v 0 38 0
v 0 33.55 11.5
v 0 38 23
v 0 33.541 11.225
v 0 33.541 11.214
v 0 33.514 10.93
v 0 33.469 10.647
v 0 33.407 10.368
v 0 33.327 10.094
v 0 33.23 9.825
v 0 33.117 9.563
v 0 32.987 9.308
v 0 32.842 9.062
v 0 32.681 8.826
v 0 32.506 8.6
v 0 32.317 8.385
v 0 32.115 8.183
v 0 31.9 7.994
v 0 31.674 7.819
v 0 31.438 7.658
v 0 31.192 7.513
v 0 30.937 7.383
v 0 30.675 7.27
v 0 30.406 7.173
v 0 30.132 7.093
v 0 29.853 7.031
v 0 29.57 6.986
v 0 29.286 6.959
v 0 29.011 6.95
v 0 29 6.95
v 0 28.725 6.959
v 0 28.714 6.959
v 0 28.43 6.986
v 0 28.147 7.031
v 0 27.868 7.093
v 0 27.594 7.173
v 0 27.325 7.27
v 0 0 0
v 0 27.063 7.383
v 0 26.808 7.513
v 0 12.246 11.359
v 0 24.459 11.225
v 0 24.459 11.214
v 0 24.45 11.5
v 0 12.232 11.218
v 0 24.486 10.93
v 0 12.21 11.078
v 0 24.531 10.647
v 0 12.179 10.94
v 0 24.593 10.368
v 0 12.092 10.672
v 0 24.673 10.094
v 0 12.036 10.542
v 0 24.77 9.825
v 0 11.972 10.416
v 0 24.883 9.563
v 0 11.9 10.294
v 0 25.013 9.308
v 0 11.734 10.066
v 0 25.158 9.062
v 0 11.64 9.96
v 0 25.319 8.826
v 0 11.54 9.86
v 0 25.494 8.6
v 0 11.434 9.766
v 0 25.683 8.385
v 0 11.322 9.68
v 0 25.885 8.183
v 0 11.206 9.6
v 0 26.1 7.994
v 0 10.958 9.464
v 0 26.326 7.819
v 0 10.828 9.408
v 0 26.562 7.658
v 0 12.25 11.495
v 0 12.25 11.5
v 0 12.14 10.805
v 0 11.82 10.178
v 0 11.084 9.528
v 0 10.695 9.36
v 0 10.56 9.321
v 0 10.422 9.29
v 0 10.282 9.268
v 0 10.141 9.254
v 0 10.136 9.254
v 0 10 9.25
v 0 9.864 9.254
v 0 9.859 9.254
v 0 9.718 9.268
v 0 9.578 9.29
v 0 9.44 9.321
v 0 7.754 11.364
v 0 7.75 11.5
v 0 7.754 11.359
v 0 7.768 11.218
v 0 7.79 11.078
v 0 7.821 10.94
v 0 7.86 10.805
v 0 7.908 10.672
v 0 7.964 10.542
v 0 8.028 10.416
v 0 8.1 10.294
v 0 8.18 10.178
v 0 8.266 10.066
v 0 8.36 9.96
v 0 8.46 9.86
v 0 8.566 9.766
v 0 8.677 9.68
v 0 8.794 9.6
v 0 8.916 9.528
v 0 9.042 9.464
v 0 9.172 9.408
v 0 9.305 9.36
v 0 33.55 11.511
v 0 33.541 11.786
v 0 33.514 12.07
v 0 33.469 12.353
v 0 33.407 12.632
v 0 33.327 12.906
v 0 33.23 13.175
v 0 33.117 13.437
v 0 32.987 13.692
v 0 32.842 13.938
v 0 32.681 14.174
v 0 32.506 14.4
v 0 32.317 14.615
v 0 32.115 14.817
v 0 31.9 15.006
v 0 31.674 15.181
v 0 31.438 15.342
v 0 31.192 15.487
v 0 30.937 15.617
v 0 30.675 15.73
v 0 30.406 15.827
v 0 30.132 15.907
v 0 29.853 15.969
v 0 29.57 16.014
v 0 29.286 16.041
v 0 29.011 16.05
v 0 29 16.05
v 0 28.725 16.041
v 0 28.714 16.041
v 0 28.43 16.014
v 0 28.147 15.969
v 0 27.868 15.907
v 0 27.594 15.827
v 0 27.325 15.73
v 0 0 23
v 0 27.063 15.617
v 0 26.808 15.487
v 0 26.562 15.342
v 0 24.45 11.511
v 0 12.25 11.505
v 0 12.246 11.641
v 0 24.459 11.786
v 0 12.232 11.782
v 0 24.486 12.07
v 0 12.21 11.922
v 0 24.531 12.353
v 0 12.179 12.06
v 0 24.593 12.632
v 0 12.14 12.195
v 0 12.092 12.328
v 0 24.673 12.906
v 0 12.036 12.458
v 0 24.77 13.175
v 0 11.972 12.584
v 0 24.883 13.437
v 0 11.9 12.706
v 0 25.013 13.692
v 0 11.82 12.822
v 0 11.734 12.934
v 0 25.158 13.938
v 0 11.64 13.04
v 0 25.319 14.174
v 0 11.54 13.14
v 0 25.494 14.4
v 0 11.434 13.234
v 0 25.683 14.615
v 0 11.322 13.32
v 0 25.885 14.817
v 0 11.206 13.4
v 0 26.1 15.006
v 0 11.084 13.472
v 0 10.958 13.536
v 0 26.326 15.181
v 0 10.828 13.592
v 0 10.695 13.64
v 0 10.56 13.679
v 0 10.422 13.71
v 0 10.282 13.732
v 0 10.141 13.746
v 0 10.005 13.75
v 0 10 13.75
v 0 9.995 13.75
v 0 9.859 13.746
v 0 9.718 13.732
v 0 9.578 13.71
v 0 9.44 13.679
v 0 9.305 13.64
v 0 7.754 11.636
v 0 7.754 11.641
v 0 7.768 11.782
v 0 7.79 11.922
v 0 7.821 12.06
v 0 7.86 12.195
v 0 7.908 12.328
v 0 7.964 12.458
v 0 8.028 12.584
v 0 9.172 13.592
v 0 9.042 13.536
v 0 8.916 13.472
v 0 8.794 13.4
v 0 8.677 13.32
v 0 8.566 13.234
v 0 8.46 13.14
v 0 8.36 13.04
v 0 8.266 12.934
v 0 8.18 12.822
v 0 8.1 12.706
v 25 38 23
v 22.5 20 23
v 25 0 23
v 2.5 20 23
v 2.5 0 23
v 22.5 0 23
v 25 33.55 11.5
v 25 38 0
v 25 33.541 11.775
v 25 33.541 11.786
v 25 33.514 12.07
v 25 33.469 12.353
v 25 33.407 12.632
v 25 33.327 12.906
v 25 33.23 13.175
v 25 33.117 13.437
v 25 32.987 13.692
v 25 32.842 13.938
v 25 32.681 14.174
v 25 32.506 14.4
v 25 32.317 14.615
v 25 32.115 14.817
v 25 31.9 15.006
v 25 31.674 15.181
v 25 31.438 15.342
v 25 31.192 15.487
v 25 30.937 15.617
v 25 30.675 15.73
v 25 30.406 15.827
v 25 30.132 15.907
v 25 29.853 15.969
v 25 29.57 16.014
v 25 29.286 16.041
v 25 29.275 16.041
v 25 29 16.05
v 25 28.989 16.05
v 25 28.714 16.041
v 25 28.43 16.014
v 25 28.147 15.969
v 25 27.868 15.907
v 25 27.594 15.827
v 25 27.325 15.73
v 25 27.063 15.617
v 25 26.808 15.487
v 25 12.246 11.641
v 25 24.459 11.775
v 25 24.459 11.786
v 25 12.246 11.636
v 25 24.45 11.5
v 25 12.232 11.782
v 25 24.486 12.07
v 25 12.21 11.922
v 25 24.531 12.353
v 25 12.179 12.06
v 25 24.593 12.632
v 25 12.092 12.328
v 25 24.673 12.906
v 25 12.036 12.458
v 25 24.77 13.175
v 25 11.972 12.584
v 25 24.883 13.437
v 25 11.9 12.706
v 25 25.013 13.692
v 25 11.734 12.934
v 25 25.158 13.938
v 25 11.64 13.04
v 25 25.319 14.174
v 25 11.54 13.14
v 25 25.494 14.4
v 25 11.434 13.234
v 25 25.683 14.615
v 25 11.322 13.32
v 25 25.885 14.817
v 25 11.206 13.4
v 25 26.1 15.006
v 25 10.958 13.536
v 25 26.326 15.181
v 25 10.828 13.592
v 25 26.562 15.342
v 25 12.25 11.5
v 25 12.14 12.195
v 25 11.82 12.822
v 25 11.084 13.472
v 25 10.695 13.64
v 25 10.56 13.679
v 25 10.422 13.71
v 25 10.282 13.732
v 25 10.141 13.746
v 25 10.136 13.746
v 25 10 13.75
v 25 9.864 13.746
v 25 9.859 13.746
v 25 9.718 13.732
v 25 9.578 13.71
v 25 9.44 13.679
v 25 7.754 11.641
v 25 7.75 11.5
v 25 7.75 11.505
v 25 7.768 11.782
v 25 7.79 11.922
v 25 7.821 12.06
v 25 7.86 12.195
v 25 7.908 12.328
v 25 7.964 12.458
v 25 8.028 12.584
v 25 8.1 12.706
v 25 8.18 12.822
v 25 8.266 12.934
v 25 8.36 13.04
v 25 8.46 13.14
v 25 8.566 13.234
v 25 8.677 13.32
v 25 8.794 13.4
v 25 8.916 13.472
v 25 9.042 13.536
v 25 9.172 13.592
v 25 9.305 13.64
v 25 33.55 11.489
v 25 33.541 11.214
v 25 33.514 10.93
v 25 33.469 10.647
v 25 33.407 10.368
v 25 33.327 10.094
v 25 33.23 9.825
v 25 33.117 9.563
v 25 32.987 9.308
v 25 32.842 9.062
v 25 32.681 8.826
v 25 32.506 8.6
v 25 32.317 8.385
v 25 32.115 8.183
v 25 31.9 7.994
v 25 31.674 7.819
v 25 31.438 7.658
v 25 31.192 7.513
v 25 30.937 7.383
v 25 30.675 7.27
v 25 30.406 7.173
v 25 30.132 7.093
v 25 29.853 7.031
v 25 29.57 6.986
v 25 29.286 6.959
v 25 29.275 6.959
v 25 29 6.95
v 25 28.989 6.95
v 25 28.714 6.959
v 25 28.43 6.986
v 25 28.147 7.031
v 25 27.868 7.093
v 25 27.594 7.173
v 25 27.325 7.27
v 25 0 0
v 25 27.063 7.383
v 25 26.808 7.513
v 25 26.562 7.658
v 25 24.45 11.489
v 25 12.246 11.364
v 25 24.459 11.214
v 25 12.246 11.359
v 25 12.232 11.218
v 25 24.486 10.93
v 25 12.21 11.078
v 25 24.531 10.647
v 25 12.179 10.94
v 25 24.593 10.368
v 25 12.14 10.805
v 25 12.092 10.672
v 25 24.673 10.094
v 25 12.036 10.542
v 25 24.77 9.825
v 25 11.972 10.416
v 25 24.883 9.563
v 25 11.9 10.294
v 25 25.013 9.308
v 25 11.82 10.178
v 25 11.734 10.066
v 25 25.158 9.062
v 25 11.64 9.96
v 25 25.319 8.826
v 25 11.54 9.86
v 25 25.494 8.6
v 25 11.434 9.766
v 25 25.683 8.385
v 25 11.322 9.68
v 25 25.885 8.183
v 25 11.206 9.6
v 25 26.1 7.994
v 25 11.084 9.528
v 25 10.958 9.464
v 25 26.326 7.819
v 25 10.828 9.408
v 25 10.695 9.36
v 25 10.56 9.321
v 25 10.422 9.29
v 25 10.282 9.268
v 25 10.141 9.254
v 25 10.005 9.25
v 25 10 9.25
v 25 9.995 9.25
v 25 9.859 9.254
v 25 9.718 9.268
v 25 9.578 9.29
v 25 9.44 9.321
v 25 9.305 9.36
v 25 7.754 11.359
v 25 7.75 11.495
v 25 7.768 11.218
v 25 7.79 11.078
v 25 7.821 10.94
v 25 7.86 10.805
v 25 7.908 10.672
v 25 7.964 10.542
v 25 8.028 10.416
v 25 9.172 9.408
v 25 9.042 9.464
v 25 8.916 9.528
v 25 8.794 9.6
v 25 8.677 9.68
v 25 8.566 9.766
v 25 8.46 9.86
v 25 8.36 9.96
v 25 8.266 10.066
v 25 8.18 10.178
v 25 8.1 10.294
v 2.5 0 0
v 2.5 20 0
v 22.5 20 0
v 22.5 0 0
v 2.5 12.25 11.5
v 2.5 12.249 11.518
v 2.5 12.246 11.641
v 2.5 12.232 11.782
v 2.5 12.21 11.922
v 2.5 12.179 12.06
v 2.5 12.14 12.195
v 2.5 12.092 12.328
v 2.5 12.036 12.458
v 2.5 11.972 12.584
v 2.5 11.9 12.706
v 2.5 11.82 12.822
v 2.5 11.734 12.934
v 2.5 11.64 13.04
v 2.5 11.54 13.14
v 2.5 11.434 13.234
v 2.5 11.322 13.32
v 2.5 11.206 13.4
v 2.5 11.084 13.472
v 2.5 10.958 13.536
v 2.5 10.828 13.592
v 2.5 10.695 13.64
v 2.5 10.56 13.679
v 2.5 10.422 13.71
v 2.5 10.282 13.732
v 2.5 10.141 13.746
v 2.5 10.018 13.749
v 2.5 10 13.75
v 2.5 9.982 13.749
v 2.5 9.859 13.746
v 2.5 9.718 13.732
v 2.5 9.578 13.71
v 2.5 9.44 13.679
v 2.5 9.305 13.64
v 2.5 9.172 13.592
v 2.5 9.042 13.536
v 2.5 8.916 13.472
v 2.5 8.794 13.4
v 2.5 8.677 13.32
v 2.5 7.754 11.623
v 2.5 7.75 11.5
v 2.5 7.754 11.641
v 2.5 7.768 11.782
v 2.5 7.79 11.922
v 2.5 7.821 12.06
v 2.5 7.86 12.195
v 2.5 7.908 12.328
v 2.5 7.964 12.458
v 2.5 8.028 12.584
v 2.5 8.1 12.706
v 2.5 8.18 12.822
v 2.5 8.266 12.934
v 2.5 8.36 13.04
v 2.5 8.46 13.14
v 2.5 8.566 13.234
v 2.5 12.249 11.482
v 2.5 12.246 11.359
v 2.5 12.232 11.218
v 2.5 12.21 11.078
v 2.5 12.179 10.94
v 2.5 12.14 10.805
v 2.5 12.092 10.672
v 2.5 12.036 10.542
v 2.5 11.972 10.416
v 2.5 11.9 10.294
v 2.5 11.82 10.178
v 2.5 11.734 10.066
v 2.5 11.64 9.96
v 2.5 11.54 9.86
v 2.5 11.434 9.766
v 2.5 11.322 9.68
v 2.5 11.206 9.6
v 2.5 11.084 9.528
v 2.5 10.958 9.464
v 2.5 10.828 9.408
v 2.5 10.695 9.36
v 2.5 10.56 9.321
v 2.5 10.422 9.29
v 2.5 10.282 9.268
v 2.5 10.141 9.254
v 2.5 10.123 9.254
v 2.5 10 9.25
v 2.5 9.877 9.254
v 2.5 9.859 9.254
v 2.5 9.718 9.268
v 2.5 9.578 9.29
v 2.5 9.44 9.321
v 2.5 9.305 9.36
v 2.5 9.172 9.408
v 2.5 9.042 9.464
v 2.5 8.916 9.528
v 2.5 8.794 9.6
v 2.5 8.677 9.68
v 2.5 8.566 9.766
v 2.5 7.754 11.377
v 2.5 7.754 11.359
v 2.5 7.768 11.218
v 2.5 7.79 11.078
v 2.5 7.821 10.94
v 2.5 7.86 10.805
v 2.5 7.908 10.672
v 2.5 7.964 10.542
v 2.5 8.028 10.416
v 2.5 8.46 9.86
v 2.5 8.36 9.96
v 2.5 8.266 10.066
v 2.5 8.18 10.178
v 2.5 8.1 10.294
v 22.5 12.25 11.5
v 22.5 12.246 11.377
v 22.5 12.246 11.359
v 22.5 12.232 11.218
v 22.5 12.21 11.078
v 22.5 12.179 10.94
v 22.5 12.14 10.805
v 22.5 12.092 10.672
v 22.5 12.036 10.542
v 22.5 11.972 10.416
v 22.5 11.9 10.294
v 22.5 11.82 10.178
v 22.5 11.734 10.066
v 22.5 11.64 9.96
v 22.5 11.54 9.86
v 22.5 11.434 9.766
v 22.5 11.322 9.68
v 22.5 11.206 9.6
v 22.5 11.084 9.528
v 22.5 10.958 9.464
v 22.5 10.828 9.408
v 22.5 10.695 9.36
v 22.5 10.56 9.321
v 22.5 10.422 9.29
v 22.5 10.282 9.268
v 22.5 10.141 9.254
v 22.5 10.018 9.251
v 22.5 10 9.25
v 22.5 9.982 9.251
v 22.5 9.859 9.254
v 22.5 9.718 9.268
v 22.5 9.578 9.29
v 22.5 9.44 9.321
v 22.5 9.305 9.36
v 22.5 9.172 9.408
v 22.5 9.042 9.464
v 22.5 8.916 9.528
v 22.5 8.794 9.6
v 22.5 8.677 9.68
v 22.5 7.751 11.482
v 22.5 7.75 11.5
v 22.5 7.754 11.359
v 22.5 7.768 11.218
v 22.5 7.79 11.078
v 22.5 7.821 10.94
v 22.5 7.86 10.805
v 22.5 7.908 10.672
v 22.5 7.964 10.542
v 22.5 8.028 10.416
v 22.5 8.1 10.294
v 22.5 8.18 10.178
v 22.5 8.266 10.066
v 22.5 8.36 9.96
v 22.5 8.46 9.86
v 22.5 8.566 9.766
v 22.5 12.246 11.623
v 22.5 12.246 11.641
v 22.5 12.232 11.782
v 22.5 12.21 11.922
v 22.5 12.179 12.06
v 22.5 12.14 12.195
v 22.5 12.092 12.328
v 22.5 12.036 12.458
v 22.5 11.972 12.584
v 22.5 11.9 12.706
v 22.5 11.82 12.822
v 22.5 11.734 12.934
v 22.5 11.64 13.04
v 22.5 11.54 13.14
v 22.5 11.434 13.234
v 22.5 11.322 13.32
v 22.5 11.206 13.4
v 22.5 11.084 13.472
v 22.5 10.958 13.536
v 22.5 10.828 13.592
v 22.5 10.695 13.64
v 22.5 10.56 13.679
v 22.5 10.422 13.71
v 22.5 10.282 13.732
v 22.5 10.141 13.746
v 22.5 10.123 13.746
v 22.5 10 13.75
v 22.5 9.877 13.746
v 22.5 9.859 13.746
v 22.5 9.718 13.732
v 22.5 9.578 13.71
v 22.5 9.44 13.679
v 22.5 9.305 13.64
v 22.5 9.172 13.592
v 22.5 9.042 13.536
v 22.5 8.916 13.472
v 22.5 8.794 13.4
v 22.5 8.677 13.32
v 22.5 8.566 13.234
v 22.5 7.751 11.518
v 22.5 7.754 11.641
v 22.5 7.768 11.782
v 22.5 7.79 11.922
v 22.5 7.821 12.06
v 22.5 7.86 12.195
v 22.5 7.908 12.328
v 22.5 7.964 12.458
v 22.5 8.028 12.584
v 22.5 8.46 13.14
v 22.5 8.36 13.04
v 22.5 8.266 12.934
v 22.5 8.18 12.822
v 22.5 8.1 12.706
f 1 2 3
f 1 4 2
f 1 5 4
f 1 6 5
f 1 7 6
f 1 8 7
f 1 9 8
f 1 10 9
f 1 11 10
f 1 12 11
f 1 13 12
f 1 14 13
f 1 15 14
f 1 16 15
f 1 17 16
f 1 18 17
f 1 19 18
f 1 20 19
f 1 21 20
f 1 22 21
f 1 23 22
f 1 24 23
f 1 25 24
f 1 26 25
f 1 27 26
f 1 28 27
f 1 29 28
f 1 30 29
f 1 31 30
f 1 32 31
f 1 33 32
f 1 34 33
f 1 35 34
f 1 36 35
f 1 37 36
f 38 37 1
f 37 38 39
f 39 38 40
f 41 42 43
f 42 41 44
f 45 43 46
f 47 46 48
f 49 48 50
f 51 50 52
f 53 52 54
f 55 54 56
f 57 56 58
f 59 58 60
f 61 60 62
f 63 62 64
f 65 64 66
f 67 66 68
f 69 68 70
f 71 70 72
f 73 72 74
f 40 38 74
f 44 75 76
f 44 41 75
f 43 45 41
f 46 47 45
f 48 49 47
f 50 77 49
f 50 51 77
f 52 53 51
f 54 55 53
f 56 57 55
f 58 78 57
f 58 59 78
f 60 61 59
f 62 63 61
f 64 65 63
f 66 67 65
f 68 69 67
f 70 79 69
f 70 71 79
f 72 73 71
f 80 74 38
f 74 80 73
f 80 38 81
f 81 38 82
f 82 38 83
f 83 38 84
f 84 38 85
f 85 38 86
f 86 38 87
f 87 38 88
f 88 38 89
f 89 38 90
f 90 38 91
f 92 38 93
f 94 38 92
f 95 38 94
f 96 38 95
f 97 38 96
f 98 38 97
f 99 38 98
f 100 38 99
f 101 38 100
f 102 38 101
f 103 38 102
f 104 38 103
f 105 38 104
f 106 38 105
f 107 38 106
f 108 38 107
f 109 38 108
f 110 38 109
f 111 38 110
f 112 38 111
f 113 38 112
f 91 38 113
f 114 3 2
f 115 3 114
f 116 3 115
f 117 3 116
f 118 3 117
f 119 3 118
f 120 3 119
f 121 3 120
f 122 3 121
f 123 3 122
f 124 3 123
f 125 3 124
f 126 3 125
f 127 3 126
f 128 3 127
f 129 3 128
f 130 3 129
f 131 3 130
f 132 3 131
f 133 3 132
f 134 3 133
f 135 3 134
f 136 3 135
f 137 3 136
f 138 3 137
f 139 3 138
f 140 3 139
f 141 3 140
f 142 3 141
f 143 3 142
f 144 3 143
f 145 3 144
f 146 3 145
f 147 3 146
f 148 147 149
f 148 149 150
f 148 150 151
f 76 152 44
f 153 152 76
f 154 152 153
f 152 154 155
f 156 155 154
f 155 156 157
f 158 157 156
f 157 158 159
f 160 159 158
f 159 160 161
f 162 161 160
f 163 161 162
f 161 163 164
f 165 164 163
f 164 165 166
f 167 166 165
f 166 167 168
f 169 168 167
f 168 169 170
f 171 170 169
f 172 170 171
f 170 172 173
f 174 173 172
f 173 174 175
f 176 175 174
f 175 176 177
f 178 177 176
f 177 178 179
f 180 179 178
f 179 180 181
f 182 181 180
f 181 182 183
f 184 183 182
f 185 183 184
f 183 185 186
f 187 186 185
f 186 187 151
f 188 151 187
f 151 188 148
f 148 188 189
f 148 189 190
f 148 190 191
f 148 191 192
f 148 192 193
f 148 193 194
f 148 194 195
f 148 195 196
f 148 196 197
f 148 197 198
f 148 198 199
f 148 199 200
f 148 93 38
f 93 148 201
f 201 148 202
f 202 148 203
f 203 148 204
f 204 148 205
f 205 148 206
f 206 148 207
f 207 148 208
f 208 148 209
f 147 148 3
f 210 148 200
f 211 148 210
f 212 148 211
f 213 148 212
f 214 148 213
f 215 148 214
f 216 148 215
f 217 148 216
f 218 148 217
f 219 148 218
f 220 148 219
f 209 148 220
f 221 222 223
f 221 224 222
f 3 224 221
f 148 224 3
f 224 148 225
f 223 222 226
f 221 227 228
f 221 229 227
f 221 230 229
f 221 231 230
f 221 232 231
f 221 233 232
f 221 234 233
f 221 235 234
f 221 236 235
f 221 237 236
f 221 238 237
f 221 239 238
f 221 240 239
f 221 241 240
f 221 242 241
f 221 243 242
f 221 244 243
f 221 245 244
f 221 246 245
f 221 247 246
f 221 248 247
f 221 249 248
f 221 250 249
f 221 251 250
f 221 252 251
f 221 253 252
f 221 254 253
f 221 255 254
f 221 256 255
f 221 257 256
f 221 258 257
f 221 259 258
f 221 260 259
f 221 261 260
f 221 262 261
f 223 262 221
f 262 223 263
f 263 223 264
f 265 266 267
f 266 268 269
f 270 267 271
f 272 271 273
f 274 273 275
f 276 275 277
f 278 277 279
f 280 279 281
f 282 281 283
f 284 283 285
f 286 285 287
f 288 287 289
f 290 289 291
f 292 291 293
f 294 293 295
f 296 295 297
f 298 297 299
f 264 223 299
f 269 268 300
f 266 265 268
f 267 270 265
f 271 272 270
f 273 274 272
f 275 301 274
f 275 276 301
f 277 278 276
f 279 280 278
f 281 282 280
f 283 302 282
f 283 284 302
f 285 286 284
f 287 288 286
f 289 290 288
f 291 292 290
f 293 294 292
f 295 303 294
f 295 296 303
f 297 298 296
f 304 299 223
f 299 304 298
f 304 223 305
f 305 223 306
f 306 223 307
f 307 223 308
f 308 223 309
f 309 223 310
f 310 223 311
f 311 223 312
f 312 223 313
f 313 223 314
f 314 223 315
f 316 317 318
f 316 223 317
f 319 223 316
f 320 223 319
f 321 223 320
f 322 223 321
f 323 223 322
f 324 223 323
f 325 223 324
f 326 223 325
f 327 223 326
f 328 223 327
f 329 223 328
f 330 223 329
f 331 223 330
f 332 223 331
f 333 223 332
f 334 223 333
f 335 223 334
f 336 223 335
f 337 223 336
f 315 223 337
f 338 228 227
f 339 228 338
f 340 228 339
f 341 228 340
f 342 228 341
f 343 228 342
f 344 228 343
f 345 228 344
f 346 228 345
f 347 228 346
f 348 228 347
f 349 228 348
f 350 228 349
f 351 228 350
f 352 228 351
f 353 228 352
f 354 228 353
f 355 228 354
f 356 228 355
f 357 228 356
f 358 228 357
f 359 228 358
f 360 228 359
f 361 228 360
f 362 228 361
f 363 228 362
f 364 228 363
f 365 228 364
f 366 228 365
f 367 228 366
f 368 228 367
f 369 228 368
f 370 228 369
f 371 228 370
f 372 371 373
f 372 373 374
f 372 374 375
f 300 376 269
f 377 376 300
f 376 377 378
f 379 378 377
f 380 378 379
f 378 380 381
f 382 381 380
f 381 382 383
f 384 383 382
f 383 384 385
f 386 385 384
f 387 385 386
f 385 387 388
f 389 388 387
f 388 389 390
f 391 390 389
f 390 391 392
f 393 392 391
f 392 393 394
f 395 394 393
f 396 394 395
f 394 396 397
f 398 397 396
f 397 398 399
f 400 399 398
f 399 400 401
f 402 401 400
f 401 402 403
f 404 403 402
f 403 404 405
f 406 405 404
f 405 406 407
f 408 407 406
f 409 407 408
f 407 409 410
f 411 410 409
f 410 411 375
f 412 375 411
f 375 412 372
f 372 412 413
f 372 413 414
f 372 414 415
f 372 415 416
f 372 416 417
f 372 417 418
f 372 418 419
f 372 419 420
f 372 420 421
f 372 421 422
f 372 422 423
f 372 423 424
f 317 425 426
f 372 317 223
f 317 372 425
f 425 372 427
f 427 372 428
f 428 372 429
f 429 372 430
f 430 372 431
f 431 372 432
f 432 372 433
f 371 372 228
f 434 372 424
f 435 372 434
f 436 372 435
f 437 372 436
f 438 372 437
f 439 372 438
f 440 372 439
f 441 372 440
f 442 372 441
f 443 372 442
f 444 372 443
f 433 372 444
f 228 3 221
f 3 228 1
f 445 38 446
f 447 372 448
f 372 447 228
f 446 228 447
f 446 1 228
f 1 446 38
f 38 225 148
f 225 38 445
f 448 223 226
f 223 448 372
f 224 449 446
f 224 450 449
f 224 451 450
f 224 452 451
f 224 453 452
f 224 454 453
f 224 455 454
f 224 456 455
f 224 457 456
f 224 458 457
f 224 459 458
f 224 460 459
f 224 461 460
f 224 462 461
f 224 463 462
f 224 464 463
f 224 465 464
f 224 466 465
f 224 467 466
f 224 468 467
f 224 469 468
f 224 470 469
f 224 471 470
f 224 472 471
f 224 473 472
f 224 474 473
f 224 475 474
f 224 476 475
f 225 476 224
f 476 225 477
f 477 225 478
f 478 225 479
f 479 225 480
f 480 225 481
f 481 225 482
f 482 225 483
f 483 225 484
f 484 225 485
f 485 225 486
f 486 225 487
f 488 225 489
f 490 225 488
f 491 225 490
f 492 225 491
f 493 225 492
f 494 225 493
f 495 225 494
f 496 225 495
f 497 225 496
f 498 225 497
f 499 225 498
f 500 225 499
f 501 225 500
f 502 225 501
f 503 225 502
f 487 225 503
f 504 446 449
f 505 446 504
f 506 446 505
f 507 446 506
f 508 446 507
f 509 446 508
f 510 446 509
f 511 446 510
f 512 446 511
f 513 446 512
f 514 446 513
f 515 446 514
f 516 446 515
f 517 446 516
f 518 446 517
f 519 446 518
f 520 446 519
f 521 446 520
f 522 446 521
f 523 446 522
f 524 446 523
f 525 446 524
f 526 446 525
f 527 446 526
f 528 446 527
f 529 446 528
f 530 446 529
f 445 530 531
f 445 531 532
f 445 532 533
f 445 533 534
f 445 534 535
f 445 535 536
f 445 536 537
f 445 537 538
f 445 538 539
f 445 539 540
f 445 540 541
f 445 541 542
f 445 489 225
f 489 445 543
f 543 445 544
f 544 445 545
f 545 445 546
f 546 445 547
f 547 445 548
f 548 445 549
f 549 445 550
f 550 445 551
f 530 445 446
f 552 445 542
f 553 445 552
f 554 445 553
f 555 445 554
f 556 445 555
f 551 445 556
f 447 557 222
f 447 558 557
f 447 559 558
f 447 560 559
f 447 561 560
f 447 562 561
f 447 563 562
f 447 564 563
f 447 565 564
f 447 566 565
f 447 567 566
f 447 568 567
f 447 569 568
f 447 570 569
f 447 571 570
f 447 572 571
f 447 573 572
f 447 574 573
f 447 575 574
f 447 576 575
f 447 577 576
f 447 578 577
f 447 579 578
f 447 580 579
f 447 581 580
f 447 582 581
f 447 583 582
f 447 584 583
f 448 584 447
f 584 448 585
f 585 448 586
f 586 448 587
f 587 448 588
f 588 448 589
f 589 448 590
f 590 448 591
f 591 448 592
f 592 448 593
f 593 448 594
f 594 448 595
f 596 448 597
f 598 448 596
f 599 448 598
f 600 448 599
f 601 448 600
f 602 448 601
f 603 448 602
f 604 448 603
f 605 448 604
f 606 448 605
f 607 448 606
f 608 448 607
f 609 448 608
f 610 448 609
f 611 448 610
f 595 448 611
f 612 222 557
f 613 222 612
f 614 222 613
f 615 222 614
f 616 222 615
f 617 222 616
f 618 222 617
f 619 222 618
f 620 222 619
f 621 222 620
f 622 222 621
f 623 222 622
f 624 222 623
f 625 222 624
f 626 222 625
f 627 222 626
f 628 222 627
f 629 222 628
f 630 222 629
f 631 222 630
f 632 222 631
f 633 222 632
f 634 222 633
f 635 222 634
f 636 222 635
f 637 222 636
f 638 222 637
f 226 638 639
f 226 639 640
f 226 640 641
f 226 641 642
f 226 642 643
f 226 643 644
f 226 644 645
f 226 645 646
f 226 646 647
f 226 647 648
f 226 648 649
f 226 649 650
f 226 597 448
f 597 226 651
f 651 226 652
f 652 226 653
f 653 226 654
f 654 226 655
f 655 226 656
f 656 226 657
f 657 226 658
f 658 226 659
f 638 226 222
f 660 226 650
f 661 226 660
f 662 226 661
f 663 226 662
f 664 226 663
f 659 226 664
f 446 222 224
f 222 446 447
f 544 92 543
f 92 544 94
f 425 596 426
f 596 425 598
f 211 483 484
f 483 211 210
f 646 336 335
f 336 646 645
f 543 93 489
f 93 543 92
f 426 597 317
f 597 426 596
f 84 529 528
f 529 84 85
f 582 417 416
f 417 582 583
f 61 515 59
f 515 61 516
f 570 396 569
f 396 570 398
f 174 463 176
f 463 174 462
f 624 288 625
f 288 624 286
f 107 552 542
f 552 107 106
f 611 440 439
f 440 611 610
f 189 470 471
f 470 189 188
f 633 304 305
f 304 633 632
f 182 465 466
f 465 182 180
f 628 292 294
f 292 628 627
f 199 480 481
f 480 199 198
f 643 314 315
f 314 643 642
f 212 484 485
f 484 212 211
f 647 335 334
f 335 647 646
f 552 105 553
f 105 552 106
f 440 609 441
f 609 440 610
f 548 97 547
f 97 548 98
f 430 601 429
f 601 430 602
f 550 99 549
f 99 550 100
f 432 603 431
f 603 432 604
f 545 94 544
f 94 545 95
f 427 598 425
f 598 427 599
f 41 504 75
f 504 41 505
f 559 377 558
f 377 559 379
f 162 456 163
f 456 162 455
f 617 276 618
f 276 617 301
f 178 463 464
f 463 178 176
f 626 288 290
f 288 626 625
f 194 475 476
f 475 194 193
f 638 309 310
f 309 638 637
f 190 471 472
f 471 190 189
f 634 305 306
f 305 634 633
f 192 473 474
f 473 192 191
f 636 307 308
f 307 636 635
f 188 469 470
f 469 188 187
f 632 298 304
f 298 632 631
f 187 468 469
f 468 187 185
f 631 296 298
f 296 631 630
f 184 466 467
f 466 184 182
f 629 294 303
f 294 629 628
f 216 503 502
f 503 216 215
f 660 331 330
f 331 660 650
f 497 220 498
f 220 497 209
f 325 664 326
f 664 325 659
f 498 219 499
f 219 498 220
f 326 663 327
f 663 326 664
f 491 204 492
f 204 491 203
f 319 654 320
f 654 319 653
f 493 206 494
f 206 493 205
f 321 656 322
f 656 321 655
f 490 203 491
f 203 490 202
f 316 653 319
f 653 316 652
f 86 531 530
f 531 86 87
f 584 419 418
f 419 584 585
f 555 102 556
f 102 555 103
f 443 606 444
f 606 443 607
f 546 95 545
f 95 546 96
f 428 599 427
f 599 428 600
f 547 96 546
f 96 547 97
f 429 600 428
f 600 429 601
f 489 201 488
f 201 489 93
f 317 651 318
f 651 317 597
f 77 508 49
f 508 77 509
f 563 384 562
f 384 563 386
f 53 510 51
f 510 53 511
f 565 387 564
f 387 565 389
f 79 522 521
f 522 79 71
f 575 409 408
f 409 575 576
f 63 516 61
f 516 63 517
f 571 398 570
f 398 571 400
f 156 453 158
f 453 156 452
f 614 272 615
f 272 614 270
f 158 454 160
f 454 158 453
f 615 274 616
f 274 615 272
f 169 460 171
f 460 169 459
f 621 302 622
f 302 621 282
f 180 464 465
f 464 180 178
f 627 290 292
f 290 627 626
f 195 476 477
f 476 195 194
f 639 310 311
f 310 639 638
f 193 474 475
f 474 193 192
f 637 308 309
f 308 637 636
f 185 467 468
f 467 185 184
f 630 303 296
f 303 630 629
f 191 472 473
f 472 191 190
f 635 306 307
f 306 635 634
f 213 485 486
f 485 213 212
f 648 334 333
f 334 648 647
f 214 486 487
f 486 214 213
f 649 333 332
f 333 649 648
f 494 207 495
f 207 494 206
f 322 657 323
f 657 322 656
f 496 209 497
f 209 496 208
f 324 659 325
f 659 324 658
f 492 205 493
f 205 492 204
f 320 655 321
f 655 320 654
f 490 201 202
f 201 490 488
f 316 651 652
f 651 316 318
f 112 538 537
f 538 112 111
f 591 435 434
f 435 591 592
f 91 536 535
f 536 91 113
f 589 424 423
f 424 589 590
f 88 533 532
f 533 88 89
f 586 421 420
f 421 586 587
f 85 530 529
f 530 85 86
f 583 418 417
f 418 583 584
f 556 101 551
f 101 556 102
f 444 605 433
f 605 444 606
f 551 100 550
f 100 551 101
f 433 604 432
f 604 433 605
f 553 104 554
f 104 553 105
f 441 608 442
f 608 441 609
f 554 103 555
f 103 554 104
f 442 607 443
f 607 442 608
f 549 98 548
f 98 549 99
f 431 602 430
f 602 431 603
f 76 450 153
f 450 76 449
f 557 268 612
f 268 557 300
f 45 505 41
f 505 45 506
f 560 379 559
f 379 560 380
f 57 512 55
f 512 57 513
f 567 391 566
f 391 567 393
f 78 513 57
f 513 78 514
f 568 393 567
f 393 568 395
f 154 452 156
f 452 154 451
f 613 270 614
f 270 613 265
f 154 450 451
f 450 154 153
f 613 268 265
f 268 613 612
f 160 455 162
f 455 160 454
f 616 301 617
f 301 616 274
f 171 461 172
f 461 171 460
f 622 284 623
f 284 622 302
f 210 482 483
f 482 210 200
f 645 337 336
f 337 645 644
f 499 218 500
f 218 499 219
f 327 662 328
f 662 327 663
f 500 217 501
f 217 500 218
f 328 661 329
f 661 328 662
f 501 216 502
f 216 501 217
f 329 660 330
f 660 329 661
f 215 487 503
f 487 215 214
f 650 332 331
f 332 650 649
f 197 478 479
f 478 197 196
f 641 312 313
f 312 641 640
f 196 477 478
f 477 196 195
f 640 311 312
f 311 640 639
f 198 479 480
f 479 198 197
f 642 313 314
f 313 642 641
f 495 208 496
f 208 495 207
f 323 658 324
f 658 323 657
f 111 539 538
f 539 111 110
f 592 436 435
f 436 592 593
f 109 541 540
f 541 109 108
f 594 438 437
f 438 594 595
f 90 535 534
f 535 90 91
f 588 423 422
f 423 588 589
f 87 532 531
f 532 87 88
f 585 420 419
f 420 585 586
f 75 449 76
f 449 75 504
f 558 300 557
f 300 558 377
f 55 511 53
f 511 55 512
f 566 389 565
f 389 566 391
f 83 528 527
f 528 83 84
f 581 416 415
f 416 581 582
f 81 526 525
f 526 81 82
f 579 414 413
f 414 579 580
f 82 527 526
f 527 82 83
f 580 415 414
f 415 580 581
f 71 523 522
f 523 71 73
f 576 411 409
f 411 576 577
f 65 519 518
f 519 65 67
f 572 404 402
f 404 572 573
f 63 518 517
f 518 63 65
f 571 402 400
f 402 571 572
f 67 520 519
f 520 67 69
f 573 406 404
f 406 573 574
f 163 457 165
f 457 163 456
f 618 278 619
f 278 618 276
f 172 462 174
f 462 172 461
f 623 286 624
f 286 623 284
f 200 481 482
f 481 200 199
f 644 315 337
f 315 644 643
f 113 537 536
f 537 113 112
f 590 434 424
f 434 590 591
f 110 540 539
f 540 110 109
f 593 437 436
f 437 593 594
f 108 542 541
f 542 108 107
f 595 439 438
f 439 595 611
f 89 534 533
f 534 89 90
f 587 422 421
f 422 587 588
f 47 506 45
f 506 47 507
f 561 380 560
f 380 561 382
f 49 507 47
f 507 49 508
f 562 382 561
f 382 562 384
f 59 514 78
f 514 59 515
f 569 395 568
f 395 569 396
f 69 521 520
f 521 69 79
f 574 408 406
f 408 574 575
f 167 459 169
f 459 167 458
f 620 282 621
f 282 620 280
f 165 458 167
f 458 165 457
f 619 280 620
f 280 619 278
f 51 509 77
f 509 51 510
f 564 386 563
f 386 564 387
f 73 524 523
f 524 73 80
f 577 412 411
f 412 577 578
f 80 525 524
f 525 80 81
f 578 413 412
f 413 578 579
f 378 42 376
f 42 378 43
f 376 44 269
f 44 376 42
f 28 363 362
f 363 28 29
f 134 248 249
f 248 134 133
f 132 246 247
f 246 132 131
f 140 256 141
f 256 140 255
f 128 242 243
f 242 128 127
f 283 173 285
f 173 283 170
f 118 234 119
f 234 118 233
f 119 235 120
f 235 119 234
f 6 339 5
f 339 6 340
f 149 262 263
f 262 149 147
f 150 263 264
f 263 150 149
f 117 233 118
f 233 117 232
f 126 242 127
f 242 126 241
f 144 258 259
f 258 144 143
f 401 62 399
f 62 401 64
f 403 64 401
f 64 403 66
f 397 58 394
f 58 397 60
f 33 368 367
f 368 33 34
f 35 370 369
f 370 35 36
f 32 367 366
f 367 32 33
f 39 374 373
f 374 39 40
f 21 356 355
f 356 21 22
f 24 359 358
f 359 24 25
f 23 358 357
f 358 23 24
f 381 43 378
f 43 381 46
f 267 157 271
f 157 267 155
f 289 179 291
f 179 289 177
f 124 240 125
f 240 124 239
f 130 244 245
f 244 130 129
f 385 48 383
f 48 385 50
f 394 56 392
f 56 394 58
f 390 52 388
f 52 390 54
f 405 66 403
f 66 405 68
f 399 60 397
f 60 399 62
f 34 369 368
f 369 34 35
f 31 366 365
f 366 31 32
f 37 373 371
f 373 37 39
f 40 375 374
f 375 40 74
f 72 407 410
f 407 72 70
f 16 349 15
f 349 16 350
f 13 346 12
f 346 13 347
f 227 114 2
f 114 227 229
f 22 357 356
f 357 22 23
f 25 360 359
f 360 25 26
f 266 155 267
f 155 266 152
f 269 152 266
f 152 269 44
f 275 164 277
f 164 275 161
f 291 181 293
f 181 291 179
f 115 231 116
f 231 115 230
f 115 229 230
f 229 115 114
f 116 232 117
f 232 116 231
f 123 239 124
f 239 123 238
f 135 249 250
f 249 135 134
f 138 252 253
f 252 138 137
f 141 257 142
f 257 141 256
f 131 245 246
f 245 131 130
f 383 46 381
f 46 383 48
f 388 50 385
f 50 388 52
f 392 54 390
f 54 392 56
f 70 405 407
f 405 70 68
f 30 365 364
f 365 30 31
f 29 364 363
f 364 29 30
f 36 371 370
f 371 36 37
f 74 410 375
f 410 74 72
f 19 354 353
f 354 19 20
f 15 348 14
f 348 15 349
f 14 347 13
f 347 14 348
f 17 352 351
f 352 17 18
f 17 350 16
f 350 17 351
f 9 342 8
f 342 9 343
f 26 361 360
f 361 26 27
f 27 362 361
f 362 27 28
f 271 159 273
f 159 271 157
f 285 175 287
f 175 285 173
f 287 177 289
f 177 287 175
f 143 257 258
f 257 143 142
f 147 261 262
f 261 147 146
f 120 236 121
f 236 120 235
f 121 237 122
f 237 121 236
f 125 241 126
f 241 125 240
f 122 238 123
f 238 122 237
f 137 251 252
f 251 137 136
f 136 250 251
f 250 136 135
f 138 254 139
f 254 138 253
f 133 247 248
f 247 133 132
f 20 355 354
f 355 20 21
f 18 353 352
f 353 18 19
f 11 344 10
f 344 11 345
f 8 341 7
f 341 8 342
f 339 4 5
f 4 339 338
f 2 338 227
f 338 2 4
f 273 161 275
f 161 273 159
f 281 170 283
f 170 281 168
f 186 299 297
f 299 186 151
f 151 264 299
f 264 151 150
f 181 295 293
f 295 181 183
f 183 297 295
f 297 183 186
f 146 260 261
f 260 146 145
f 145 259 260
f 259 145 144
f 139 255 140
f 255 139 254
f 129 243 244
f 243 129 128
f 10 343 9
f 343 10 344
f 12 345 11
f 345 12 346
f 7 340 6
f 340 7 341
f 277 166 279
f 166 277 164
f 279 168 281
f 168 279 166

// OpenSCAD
//part width and height.  Width must allow for size of tube
boxd = 25;
boxh = 23;
boxl = 38;



//dimensions for the square tube and how far into the part it sits
tube_od = 20;

//solid rod diameter and clearance from tube and edge of part
rod = 9.1;
rodr = rod/2;
rody = tube_od +((boxl-tube_od)/2);

//screw size
screwd = 4.5;
screwr = screwd/2;

difference(){
	cube(size=[boxd,boxl,boxh],center=false);
	translate([(boxd-tube_od)/2,0,-1])
		cube(size=[tube_od,tube_od,boxh+2],center=false);

	translate([-1,tube_od/2,boxh/2])
		rotate([270,0,270])
			cylinder(h=boxd+2,r=screwr,$fn=100);

	translate([-1,tube_od + ((boxl-tube_od)/2)  ,boxh/2])
		rotate([270,0,270])
	 		cylinder(h=boxd+2,r=rodr,$fn=100);
}
